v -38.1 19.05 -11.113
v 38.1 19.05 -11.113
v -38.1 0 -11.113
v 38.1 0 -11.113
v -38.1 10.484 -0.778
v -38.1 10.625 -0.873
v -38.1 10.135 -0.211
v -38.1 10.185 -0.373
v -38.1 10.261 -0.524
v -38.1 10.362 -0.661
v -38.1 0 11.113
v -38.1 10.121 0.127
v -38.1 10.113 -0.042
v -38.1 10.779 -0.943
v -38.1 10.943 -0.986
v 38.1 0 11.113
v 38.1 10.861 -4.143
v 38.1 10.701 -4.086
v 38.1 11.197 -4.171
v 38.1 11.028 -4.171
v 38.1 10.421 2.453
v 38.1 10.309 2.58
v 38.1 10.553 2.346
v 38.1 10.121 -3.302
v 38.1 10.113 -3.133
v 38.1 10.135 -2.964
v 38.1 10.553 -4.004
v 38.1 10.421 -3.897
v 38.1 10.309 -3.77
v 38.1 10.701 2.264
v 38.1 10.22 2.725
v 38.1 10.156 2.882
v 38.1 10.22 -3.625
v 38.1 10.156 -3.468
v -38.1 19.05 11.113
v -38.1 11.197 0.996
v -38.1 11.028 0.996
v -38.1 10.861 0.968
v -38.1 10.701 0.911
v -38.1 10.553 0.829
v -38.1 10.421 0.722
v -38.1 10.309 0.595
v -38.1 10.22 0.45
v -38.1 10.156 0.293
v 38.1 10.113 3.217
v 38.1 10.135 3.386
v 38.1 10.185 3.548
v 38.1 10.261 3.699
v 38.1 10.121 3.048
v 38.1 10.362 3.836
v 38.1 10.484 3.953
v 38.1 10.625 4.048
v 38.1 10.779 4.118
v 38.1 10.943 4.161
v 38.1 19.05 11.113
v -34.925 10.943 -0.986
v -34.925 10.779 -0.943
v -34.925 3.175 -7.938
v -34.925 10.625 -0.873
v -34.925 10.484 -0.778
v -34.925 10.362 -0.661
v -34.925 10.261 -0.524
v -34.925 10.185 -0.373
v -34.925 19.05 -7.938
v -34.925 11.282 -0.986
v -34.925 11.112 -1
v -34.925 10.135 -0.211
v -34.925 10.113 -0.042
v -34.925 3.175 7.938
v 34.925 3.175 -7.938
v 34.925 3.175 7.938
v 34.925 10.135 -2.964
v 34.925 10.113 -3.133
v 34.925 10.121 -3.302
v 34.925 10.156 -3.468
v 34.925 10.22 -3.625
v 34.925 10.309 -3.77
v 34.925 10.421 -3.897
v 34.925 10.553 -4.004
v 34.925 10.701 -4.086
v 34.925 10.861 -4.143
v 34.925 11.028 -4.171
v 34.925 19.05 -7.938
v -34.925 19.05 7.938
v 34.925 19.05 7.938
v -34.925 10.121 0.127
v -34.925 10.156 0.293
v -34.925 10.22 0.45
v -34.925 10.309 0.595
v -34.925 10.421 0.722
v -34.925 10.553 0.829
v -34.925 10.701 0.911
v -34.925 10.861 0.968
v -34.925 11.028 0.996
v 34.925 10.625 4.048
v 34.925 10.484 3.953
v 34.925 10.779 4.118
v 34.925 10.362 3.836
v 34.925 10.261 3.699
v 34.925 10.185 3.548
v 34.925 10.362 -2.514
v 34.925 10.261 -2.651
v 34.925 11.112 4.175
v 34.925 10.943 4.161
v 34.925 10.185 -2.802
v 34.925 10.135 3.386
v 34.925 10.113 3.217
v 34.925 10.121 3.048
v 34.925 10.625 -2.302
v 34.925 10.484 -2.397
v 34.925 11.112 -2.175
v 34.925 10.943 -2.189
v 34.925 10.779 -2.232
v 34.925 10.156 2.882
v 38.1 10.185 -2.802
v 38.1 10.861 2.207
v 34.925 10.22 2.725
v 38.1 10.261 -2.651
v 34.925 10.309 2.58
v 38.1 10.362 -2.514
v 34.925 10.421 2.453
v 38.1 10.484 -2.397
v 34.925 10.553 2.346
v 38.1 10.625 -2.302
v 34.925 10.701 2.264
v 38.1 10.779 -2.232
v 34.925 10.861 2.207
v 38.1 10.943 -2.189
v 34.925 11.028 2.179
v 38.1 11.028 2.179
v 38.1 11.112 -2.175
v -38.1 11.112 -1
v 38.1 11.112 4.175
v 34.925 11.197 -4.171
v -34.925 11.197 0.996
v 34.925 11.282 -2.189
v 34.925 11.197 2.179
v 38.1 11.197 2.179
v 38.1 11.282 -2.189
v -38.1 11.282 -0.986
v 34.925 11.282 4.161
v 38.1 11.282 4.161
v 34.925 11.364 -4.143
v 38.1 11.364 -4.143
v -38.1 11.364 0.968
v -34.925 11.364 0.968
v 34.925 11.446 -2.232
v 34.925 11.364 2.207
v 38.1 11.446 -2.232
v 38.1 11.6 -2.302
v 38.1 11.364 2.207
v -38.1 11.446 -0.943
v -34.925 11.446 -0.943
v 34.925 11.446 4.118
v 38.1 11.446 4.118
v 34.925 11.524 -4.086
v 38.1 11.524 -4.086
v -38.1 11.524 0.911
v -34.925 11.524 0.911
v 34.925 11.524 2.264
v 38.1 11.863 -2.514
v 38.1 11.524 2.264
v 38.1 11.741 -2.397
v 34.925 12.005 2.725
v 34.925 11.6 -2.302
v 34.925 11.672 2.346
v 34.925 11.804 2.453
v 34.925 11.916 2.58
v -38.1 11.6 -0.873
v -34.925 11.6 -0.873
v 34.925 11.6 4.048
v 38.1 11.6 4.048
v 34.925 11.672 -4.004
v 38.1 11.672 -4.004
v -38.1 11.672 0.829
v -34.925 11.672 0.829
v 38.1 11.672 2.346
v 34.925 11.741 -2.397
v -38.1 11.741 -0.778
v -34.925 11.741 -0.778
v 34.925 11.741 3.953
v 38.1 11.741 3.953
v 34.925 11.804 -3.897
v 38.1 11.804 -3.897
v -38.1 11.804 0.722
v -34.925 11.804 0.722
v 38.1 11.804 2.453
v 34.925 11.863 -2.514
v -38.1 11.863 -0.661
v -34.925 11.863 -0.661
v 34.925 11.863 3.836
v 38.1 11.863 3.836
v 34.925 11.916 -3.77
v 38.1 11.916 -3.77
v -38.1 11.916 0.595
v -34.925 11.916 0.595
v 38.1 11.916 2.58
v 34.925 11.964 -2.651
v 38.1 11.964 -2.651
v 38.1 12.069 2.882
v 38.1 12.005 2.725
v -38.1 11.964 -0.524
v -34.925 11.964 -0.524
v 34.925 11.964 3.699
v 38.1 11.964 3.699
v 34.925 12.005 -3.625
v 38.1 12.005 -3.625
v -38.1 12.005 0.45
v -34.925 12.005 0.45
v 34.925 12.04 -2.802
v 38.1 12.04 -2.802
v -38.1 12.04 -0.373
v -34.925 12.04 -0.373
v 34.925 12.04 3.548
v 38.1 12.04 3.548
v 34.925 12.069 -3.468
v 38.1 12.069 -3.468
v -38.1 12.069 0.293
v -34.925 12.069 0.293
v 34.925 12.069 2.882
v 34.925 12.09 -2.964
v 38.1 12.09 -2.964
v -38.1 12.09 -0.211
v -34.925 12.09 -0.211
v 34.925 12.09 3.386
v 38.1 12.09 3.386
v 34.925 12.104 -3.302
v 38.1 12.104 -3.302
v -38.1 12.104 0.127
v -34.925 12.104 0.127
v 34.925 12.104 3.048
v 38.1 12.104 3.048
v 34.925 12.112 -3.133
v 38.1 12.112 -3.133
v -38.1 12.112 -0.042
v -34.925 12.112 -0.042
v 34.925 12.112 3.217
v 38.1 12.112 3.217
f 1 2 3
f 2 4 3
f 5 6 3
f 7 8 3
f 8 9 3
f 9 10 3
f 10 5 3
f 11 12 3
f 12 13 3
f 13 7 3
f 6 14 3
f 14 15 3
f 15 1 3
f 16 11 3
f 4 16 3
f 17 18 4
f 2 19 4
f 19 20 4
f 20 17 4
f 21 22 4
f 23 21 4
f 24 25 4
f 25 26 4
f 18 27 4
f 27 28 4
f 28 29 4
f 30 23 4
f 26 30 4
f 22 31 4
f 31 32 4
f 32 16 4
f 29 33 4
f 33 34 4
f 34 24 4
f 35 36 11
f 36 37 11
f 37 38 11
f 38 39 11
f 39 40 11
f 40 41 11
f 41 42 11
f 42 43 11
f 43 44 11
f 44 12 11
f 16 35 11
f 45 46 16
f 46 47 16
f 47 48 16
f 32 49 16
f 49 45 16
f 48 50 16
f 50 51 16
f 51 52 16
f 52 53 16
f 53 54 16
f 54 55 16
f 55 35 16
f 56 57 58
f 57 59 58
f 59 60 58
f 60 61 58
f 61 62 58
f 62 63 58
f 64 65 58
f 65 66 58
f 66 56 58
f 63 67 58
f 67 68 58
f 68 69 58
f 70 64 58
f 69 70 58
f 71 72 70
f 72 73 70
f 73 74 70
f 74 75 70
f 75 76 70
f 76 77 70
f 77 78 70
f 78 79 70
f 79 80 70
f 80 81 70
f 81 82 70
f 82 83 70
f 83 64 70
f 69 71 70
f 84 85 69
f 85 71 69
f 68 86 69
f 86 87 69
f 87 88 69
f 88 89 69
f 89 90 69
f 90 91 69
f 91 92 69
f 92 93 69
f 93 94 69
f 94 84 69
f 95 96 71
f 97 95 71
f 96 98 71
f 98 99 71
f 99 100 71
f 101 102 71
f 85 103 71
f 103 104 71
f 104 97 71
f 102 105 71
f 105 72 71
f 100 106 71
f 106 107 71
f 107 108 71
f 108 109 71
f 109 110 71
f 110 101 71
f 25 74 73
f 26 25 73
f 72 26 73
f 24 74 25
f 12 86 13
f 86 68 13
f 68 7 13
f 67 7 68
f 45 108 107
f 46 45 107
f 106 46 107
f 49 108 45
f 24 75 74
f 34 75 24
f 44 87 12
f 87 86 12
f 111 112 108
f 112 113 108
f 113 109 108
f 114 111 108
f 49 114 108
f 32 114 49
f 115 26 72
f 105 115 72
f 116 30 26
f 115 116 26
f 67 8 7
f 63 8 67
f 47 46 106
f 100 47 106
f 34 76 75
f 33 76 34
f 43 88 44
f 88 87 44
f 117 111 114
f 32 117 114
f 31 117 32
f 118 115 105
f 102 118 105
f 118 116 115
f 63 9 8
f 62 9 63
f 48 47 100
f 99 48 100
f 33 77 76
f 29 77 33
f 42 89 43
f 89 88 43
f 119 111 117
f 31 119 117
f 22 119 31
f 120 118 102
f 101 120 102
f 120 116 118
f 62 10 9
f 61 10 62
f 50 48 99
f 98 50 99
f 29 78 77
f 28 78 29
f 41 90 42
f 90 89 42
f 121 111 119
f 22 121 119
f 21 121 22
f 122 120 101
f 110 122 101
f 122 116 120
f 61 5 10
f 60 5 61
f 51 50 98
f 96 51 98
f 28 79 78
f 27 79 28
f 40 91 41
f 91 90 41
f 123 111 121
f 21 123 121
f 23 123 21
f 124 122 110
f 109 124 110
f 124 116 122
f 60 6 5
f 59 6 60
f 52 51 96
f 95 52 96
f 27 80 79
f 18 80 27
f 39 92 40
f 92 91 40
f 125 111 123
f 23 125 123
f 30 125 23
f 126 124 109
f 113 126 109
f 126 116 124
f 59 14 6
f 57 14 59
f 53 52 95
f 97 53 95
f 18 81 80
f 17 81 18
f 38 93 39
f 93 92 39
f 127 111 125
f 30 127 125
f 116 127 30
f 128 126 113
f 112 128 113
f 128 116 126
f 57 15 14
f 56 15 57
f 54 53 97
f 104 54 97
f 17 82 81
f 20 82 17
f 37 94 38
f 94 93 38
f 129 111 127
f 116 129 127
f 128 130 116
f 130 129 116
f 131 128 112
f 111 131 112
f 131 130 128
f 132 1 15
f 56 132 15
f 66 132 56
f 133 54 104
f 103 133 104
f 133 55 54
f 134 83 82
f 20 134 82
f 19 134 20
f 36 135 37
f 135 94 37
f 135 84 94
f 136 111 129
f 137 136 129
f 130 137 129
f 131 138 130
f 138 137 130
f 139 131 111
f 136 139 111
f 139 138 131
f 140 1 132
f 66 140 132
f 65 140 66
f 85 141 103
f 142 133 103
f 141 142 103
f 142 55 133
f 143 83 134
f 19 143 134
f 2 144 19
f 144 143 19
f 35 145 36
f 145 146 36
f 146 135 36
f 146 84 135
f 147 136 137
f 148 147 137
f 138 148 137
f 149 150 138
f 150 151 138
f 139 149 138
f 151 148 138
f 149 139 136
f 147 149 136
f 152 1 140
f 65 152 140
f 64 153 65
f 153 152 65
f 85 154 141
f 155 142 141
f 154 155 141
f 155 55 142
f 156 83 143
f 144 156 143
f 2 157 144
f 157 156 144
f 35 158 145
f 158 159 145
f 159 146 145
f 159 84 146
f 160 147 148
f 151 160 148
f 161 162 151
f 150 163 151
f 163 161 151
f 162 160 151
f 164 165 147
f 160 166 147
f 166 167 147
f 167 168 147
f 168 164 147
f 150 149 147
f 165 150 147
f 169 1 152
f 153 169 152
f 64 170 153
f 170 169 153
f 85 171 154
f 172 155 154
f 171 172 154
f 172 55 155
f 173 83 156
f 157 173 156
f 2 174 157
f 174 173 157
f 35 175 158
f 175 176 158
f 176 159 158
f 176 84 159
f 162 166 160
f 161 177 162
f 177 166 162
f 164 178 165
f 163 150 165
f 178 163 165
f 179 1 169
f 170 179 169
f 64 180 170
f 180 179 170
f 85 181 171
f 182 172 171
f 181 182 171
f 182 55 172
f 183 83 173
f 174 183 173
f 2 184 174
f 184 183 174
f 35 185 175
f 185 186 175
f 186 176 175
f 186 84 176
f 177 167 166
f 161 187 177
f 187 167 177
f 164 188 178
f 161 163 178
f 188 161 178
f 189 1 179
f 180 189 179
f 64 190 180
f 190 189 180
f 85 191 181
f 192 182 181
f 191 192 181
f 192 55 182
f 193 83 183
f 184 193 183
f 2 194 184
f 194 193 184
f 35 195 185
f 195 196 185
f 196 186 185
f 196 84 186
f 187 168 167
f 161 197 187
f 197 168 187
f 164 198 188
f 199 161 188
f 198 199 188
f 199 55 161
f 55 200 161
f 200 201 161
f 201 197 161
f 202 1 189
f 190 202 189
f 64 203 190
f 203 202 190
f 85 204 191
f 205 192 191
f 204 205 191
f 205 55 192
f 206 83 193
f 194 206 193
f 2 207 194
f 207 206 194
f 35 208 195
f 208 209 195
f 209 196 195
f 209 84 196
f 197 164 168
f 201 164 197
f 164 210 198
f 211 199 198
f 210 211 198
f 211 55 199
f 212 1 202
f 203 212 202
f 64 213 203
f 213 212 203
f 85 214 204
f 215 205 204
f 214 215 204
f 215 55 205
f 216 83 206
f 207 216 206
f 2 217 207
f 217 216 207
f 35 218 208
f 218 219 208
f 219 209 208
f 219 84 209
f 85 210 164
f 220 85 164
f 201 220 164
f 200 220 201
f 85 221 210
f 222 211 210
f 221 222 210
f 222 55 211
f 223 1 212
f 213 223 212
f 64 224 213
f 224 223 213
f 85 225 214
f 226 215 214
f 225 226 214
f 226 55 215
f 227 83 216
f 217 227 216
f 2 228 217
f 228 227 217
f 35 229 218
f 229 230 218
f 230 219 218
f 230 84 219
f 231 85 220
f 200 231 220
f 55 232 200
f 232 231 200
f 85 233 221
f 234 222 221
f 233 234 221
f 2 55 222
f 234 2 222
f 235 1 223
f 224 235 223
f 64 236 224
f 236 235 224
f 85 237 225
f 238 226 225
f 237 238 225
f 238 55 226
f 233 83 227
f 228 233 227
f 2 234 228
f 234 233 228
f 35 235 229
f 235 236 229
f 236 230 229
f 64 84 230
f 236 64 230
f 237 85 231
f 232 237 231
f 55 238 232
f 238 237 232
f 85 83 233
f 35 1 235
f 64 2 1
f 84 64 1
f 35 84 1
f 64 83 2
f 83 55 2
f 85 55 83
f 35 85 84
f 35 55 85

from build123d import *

# Parameters (mm, degrees)
SKETCH1_W           = 76.2
SKETCH1_H           = 22.225
BOSS_EXTRUDE1_DEPTH = 3.175
SKETCH2_W           = 3.175
SKETCH2_H           = 15.875
BOSS_EXTRUDE2_DEPTH = 15.875
SKETCH3_R           = 1
CUT_EXTRUDE1_DEPTH  = 4.175
SKETCH4_R           = 1
CUT_EXTRUDE2_DEPTH  = 4.175


with BuildPart() as part:
    # Sketch1 → Boss-Extrude1 (new body)
    with BuildSketch(Plane(origin=(0, 0, 0), x_dir=(1, 0, 0), z_dir=(0, 1, 0))):
        Rectangle(SKETCH1_W, SKETCH1_H)
    extrude(amount=BOSS_EXTRUDE1_DEPTH)

    # Sketch2 → Boss-Extrude2 (add)
    with BuildSketch(Plane(origin=(0, 3.175, 0), x_dir=(1, 0, 0), z_dir=(0, 1, 0))):
        Polygon((38.1, 11.1125), (-38.1, 11.1125), (-38.1, 7.9375), (-34.925, 7.9375), (34.925, 7.9375), (38.1, 7.9375), align=None)
        with Locations((-36.5125, 0)):
            Rectangle(SKETCH2_W, SKETCH2_H)
        Polygon((-34.925, -7.9375), (-38.1, -7.9375), (-38.1, -11.1125), (38.1, -11.1125), (38.1, -7.9375), (34.925, -7.9375), align=None)
        with Locations((36.5125, 0)):
            Rectangle(SKETCH2_W, SKETCH2_H)
    extrude(amount=BOSS_EXTRUDE2_DEPTH)

    # Sketch3 → Cut-Extrude1 (cut, through all)
    with BuildSketch(Plane.ZY.offset(-34.925)):
        with Locations((3.175, 11.1125)):
            Circle(SKETCH3_R)
        with Locations((-3.175, 11.1125)):
            Circle(SKETCH3_R)
    extrude(amount=-CUT_EXTRUDE1_DEPTH, mode=Mode.SUBTRACT)

    # Sketch4 → Cut-Extrude2 (cut, through all)
    with BuildSketch(Plane(origin=(-34.925, 0, 0), x_dir=(0, 0, -1), z_dir=(1, 0, 0))):
        with Locations((0, 11.1125)):
            Circle(SKETCH4_R)
    extrude(amount=-CUT_EXTRUDE2_DEPTH, mode=Mode.SUBTRACT)


solid = part.part
